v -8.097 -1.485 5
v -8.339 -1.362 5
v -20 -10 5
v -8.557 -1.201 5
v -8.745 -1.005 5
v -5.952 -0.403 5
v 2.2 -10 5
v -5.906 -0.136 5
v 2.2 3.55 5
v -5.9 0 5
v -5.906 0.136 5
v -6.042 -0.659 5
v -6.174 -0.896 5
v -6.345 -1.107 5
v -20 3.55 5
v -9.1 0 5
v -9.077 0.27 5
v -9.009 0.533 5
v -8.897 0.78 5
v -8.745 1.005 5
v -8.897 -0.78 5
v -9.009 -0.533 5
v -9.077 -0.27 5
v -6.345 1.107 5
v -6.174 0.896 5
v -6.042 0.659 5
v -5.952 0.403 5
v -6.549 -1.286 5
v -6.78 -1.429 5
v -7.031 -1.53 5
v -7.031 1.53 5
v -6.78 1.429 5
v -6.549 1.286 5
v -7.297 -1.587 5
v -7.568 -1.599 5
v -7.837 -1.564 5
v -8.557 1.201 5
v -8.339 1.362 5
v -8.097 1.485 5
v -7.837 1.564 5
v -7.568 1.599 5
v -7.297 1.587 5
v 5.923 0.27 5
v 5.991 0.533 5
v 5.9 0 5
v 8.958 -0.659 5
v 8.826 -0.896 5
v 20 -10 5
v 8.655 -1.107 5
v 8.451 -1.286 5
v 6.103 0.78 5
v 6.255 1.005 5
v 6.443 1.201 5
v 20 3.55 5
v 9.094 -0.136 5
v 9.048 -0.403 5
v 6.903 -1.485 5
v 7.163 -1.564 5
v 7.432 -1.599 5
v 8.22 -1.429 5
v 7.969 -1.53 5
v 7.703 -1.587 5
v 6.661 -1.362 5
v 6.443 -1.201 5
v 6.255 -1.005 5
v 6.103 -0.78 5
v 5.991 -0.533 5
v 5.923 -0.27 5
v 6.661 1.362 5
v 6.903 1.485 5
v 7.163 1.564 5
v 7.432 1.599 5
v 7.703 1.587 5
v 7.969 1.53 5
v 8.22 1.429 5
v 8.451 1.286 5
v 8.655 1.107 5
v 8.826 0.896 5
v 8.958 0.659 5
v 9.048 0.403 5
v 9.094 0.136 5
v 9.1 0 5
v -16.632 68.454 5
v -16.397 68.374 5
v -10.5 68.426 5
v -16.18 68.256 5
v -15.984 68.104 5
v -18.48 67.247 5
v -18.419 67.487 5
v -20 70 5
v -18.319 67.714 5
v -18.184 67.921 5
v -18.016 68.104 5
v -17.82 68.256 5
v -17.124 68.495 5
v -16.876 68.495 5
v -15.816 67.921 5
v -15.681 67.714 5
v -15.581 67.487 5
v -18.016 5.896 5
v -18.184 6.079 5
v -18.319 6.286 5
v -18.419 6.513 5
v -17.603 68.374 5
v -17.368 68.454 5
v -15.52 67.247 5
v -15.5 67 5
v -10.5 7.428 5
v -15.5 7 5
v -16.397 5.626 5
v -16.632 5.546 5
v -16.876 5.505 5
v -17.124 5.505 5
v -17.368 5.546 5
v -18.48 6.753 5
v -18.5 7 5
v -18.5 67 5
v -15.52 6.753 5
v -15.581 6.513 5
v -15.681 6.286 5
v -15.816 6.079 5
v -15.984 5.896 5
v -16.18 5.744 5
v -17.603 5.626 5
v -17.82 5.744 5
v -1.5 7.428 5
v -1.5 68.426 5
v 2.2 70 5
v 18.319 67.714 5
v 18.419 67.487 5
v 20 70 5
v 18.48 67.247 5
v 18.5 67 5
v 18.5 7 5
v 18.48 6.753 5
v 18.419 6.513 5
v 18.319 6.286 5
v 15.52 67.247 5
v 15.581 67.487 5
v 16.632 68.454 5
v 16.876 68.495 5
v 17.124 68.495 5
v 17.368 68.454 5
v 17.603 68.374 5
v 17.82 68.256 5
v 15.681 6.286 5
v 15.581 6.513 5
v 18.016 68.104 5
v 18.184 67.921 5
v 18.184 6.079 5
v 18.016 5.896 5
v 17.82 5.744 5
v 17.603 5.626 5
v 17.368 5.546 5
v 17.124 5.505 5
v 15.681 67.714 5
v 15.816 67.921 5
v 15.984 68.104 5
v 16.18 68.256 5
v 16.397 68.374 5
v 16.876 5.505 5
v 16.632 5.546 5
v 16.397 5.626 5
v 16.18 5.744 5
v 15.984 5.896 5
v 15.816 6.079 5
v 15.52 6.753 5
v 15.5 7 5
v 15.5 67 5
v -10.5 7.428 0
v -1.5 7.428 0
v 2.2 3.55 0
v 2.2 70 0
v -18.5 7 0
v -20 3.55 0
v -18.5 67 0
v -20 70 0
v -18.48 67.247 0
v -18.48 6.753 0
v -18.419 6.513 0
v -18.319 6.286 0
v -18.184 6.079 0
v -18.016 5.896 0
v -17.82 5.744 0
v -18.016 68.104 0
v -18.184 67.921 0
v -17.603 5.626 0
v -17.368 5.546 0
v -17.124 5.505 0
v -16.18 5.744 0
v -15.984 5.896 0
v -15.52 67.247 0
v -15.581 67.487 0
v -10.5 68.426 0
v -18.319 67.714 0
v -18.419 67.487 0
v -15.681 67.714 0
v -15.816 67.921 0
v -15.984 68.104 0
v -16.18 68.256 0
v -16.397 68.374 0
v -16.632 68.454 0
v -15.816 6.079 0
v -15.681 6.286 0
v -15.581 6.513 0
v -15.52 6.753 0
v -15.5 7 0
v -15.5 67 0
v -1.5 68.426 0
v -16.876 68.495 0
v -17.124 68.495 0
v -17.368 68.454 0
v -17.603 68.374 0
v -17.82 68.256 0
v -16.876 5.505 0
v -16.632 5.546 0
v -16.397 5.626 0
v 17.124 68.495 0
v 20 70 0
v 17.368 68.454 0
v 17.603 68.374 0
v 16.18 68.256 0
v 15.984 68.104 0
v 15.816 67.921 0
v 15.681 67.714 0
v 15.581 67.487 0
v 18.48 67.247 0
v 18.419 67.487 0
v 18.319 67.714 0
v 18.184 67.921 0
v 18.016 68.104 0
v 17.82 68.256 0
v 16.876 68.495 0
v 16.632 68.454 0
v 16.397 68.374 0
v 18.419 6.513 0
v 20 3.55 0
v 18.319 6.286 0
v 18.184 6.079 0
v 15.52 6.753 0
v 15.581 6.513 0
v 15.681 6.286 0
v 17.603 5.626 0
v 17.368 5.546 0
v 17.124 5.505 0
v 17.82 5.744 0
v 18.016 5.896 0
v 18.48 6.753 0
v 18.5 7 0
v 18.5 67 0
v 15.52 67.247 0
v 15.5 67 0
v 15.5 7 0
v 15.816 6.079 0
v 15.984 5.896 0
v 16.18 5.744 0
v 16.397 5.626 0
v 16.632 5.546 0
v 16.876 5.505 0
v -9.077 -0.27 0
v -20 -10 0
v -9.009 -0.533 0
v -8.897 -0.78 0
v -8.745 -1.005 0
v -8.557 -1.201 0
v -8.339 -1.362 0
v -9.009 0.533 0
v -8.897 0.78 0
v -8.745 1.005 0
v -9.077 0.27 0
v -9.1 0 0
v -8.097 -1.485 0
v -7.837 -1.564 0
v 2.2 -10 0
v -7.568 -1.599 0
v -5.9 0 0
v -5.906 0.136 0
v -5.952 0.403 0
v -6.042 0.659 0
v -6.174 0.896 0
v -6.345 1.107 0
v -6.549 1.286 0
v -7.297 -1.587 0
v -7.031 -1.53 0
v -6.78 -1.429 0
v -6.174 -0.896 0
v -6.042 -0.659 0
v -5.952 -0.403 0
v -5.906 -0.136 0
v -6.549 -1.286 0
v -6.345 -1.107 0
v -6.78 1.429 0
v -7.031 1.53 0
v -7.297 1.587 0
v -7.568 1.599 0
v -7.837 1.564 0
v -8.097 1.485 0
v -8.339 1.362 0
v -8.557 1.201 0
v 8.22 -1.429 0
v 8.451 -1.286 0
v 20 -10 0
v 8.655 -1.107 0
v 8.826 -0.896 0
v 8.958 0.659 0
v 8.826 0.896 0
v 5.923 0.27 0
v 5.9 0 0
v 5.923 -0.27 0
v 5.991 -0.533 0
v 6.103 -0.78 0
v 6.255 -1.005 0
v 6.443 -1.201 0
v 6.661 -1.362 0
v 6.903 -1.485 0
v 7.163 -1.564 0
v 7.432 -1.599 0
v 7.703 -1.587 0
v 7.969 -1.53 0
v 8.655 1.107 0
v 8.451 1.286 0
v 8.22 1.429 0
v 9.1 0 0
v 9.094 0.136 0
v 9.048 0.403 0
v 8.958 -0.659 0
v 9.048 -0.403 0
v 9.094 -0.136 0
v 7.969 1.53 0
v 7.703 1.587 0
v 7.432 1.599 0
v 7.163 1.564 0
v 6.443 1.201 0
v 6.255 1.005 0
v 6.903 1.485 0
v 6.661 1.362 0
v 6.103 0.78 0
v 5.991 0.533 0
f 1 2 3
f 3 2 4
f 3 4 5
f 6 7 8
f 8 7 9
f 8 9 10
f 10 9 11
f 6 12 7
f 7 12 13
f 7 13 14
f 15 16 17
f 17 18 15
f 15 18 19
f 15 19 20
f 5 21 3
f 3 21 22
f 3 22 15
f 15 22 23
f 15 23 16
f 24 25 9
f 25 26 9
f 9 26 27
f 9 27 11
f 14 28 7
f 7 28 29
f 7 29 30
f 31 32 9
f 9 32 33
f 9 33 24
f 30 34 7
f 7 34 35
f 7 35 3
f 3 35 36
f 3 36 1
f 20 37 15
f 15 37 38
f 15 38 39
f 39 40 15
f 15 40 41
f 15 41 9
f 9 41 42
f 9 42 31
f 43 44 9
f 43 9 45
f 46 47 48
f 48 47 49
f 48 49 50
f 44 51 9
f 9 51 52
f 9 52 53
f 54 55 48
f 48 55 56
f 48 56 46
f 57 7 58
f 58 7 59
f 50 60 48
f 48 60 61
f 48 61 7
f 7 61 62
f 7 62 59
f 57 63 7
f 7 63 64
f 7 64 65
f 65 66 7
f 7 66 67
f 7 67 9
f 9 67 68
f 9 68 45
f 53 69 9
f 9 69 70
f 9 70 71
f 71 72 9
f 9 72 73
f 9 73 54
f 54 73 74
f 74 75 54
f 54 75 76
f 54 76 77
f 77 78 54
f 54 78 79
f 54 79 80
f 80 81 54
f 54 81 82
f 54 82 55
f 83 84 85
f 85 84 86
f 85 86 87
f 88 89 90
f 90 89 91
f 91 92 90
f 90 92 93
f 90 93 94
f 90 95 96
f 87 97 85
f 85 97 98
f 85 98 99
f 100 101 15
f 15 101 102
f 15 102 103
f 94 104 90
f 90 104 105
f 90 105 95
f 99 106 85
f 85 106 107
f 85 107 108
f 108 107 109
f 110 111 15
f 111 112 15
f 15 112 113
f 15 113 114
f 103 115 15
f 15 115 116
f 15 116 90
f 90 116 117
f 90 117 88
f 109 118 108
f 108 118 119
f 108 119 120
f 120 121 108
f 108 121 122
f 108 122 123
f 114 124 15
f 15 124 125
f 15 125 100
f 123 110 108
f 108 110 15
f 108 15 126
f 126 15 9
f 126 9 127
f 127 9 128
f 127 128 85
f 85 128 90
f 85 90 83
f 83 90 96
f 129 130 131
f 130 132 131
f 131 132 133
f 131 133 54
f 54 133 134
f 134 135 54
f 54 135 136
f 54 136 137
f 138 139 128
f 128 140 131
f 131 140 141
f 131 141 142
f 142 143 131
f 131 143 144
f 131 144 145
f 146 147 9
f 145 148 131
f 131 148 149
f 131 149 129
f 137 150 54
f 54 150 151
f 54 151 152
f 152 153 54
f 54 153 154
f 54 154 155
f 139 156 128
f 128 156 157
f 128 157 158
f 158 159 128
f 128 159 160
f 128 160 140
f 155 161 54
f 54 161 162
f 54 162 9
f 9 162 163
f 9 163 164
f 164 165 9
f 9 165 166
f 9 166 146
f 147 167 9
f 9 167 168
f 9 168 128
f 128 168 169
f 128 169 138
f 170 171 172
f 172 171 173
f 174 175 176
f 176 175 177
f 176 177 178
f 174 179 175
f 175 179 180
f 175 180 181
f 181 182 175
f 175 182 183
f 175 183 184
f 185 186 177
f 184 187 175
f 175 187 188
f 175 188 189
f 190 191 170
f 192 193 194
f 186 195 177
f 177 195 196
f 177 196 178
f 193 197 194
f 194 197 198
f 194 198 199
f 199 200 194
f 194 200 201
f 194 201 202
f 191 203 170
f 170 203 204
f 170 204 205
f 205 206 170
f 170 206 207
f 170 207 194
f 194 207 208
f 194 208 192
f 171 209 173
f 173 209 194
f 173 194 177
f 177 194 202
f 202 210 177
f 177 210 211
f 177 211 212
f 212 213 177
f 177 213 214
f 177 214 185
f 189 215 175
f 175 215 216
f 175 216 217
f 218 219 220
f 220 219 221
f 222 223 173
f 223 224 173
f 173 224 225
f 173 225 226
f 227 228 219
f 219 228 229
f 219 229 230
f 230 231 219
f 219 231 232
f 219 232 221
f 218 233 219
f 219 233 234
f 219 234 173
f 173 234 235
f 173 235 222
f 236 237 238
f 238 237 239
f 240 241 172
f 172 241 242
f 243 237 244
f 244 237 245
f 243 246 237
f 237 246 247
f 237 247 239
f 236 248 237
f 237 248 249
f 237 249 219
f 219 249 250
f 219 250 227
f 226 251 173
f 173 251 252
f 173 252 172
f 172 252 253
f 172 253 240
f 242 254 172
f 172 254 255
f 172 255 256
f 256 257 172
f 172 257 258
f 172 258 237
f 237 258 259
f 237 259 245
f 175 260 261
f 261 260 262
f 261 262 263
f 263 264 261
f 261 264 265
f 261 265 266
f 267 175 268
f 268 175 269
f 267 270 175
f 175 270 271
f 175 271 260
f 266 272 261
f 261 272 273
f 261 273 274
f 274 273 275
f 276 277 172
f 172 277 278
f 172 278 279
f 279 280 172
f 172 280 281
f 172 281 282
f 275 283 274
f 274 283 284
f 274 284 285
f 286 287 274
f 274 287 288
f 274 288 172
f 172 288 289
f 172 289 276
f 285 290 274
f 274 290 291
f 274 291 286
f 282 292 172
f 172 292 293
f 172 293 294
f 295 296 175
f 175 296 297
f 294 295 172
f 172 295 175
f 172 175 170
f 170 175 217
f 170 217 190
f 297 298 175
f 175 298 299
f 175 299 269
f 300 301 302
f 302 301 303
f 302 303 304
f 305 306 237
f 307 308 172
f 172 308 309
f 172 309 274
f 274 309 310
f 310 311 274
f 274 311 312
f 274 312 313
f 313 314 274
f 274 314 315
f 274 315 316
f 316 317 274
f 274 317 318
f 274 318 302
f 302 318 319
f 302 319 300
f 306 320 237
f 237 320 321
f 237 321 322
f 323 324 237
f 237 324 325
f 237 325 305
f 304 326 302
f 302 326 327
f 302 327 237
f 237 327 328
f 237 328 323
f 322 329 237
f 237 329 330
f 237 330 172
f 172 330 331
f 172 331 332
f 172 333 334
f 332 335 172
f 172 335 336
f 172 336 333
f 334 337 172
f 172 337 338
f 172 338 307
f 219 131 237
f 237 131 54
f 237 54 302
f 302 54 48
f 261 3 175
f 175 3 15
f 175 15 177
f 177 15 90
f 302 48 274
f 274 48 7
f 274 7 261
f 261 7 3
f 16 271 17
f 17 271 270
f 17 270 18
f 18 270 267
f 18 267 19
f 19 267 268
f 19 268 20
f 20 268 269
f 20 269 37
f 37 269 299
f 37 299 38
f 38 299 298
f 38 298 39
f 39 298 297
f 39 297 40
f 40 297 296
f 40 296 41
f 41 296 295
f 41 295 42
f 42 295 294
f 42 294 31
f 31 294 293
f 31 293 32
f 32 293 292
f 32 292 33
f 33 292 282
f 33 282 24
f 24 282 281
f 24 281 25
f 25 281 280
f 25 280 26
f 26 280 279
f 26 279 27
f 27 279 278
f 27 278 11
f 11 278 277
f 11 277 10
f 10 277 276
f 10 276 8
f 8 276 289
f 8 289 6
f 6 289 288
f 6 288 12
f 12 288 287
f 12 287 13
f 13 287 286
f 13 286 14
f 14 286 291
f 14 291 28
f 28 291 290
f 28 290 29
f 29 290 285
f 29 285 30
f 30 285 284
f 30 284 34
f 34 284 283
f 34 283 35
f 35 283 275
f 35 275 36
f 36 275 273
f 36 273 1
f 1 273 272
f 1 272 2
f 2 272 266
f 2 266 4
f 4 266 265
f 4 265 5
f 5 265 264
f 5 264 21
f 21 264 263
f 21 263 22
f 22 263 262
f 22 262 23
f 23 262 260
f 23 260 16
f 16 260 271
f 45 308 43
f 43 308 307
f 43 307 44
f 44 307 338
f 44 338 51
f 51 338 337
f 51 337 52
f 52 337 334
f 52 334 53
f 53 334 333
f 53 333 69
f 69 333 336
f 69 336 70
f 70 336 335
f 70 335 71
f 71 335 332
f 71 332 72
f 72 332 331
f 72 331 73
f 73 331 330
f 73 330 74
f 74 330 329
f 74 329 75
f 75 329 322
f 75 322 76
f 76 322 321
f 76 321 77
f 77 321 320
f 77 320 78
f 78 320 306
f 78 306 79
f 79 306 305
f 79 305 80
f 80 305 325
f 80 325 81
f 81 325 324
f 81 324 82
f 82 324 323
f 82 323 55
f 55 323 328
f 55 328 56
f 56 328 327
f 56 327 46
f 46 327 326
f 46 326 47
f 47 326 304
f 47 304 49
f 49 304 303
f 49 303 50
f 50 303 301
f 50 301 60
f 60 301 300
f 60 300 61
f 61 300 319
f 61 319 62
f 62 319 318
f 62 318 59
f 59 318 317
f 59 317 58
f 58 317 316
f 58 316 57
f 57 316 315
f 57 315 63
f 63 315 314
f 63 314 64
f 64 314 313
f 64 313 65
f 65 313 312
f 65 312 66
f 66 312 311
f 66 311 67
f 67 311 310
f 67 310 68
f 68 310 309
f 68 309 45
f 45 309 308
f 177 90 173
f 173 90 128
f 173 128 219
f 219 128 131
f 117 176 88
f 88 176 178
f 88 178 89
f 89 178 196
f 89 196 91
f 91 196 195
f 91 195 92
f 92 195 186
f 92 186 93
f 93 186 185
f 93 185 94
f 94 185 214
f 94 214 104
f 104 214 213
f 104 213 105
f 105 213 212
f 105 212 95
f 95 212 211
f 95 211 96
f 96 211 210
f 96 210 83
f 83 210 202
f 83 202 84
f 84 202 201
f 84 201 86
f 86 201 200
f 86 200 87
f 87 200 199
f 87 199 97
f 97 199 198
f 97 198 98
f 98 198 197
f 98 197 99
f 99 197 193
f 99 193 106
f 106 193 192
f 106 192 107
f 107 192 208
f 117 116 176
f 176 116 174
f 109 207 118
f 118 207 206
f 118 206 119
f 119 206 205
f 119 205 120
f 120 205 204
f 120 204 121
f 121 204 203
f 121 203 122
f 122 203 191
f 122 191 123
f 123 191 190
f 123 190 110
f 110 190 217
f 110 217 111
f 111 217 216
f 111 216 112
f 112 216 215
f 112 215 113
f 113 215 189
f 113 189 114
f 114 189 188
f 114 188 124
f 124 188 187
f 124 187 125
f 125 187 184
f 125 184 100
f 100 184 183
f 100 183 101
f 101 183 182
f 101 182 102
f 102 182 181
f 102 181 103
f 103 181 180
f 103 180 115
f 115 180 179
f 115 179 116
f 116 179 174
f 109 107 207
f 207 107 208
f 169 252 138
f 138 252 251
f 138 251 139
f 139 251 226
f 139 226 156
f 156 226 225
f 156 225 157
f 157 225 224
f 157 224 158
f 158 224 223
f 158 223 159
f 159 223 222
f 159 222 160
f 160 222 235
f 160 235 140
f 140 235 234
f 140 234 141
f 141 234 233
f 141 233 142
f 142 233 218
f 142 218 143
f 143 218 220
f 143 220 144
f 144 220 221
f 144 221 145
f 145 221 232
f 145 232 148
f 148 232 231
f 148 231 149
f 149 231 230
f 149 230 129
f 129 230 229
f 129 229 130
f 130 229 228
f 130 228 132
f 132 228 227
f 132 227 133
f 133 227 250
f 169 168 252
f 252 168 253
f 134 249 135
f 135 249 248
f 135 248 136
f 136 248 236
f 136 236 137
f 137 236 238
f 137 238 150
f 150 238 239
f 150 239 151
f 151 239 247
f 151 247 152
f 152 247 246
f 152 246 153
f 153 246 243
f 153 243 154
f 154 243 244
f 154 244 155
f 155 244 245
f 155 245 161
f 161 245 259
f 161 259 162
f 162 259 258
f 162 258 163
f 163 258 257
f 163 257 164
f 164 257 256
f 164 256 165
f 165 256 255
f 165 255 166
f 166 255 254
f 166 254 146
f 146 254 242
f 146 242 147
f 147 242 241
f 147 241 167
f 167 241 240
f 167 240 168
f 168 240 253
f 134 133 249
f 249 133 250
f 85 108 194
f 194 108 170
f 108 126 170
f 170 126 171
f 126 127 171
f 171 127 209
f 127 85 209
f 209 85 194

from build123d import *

# Parameters (mm, degrees)
SKETCH1_W           = 40
SKETCH1_H           = 20
SKETCH1_R           = 1.6
BOSS_EXTRUDE1_DEPTH = 5
SKETCH3_W           = 40
SKETCH3_H           = 5
BOSS_EXTRUDE3_DEPTH = 60
CUT_EXTRUDE1_DEPTH  = 73.972597597
SKETCH5_W           = 9
SKETCH5_H           = 60.997272609
CUT_EXTRUDE2_DEPTH  = 73.972597597


with BuildPart() as part:
    # Sketch1 → Boss-Extrude1 (new body)
    with BuildSketch(Plane.XY):
        Rectangle(SKETCH1_W, SKETCH1_H)
        with Locations((-7.5, 0)):
            Circle(SKETCH1_R, mode=Mode.SUBTRACT)
        with Locations((7.5, 0)):
            Circle(SKETCH1_R, mode=Mode.SUBTRACT)
    extrude(amount=BOSS_EXTRUDE1_DEPTH)

    # Sketch3 → Boss-Extrude3 (add)
    with BuildSketch(Plane(origin=(0, 10, 0), x_dir=(1, 0, 0), z_dir=(0, 1, 0))):
        with Locations((0, -2.5)):
            Rectangle(SKETCH3_W, SKETCH3_H)
    extrude(amount=BOSS_EXTRUDE3_DEPTH)

    # Sketch4 → Cut-Extrude1 (cut, through all)
    with BuildSketch(Plane(origin=(0, 0, 0), x_dir=(-1, 0, 0), z_dir=(0, 0, -1))):
        with BuildLine():
            Line((-15.5, 67), (-15.5, 7))
            ThreePointArc((-15.5, 7), (-17, 5.5), (-18.5, 7))
            Line((-18.5, 7), (-18.5, 67))
            ThreePointArc((-18.5, 67), (-17, 68.5), (-15.5, 67))
        make_face()
        with BuildLine():
            Line((18.5, 67), (18.5, 7))
            ThreePointArc((18.5, 7), (17, 5.5), (15.5, 7))
            Line((15.5, 7), (15.5, 67))
            ThreePointArc((15.5, 67), (17, 68.5), (18.5, 67))
        make_face()
    extrude(amount=-CUT_EXTRUDE1_DEPTH, mode=Mode.SUBTRACT)

    # Sketch5 → Cut-Extrude2 (cut, through all)
    with BuildSketch(Plane(origin=(0, 0, 0), x_dir=(-1, 0, 0), z_dir=(0, 0, -1))):
        with Locations((6, 37.926958335)):
            Rectangle(SKETCH5_W, SKETCH5_H)
    extrude(amount=-CUT_EXTRUDE2_DEPTH, mode=Mode.SUBTRACT)


solid = part.part
